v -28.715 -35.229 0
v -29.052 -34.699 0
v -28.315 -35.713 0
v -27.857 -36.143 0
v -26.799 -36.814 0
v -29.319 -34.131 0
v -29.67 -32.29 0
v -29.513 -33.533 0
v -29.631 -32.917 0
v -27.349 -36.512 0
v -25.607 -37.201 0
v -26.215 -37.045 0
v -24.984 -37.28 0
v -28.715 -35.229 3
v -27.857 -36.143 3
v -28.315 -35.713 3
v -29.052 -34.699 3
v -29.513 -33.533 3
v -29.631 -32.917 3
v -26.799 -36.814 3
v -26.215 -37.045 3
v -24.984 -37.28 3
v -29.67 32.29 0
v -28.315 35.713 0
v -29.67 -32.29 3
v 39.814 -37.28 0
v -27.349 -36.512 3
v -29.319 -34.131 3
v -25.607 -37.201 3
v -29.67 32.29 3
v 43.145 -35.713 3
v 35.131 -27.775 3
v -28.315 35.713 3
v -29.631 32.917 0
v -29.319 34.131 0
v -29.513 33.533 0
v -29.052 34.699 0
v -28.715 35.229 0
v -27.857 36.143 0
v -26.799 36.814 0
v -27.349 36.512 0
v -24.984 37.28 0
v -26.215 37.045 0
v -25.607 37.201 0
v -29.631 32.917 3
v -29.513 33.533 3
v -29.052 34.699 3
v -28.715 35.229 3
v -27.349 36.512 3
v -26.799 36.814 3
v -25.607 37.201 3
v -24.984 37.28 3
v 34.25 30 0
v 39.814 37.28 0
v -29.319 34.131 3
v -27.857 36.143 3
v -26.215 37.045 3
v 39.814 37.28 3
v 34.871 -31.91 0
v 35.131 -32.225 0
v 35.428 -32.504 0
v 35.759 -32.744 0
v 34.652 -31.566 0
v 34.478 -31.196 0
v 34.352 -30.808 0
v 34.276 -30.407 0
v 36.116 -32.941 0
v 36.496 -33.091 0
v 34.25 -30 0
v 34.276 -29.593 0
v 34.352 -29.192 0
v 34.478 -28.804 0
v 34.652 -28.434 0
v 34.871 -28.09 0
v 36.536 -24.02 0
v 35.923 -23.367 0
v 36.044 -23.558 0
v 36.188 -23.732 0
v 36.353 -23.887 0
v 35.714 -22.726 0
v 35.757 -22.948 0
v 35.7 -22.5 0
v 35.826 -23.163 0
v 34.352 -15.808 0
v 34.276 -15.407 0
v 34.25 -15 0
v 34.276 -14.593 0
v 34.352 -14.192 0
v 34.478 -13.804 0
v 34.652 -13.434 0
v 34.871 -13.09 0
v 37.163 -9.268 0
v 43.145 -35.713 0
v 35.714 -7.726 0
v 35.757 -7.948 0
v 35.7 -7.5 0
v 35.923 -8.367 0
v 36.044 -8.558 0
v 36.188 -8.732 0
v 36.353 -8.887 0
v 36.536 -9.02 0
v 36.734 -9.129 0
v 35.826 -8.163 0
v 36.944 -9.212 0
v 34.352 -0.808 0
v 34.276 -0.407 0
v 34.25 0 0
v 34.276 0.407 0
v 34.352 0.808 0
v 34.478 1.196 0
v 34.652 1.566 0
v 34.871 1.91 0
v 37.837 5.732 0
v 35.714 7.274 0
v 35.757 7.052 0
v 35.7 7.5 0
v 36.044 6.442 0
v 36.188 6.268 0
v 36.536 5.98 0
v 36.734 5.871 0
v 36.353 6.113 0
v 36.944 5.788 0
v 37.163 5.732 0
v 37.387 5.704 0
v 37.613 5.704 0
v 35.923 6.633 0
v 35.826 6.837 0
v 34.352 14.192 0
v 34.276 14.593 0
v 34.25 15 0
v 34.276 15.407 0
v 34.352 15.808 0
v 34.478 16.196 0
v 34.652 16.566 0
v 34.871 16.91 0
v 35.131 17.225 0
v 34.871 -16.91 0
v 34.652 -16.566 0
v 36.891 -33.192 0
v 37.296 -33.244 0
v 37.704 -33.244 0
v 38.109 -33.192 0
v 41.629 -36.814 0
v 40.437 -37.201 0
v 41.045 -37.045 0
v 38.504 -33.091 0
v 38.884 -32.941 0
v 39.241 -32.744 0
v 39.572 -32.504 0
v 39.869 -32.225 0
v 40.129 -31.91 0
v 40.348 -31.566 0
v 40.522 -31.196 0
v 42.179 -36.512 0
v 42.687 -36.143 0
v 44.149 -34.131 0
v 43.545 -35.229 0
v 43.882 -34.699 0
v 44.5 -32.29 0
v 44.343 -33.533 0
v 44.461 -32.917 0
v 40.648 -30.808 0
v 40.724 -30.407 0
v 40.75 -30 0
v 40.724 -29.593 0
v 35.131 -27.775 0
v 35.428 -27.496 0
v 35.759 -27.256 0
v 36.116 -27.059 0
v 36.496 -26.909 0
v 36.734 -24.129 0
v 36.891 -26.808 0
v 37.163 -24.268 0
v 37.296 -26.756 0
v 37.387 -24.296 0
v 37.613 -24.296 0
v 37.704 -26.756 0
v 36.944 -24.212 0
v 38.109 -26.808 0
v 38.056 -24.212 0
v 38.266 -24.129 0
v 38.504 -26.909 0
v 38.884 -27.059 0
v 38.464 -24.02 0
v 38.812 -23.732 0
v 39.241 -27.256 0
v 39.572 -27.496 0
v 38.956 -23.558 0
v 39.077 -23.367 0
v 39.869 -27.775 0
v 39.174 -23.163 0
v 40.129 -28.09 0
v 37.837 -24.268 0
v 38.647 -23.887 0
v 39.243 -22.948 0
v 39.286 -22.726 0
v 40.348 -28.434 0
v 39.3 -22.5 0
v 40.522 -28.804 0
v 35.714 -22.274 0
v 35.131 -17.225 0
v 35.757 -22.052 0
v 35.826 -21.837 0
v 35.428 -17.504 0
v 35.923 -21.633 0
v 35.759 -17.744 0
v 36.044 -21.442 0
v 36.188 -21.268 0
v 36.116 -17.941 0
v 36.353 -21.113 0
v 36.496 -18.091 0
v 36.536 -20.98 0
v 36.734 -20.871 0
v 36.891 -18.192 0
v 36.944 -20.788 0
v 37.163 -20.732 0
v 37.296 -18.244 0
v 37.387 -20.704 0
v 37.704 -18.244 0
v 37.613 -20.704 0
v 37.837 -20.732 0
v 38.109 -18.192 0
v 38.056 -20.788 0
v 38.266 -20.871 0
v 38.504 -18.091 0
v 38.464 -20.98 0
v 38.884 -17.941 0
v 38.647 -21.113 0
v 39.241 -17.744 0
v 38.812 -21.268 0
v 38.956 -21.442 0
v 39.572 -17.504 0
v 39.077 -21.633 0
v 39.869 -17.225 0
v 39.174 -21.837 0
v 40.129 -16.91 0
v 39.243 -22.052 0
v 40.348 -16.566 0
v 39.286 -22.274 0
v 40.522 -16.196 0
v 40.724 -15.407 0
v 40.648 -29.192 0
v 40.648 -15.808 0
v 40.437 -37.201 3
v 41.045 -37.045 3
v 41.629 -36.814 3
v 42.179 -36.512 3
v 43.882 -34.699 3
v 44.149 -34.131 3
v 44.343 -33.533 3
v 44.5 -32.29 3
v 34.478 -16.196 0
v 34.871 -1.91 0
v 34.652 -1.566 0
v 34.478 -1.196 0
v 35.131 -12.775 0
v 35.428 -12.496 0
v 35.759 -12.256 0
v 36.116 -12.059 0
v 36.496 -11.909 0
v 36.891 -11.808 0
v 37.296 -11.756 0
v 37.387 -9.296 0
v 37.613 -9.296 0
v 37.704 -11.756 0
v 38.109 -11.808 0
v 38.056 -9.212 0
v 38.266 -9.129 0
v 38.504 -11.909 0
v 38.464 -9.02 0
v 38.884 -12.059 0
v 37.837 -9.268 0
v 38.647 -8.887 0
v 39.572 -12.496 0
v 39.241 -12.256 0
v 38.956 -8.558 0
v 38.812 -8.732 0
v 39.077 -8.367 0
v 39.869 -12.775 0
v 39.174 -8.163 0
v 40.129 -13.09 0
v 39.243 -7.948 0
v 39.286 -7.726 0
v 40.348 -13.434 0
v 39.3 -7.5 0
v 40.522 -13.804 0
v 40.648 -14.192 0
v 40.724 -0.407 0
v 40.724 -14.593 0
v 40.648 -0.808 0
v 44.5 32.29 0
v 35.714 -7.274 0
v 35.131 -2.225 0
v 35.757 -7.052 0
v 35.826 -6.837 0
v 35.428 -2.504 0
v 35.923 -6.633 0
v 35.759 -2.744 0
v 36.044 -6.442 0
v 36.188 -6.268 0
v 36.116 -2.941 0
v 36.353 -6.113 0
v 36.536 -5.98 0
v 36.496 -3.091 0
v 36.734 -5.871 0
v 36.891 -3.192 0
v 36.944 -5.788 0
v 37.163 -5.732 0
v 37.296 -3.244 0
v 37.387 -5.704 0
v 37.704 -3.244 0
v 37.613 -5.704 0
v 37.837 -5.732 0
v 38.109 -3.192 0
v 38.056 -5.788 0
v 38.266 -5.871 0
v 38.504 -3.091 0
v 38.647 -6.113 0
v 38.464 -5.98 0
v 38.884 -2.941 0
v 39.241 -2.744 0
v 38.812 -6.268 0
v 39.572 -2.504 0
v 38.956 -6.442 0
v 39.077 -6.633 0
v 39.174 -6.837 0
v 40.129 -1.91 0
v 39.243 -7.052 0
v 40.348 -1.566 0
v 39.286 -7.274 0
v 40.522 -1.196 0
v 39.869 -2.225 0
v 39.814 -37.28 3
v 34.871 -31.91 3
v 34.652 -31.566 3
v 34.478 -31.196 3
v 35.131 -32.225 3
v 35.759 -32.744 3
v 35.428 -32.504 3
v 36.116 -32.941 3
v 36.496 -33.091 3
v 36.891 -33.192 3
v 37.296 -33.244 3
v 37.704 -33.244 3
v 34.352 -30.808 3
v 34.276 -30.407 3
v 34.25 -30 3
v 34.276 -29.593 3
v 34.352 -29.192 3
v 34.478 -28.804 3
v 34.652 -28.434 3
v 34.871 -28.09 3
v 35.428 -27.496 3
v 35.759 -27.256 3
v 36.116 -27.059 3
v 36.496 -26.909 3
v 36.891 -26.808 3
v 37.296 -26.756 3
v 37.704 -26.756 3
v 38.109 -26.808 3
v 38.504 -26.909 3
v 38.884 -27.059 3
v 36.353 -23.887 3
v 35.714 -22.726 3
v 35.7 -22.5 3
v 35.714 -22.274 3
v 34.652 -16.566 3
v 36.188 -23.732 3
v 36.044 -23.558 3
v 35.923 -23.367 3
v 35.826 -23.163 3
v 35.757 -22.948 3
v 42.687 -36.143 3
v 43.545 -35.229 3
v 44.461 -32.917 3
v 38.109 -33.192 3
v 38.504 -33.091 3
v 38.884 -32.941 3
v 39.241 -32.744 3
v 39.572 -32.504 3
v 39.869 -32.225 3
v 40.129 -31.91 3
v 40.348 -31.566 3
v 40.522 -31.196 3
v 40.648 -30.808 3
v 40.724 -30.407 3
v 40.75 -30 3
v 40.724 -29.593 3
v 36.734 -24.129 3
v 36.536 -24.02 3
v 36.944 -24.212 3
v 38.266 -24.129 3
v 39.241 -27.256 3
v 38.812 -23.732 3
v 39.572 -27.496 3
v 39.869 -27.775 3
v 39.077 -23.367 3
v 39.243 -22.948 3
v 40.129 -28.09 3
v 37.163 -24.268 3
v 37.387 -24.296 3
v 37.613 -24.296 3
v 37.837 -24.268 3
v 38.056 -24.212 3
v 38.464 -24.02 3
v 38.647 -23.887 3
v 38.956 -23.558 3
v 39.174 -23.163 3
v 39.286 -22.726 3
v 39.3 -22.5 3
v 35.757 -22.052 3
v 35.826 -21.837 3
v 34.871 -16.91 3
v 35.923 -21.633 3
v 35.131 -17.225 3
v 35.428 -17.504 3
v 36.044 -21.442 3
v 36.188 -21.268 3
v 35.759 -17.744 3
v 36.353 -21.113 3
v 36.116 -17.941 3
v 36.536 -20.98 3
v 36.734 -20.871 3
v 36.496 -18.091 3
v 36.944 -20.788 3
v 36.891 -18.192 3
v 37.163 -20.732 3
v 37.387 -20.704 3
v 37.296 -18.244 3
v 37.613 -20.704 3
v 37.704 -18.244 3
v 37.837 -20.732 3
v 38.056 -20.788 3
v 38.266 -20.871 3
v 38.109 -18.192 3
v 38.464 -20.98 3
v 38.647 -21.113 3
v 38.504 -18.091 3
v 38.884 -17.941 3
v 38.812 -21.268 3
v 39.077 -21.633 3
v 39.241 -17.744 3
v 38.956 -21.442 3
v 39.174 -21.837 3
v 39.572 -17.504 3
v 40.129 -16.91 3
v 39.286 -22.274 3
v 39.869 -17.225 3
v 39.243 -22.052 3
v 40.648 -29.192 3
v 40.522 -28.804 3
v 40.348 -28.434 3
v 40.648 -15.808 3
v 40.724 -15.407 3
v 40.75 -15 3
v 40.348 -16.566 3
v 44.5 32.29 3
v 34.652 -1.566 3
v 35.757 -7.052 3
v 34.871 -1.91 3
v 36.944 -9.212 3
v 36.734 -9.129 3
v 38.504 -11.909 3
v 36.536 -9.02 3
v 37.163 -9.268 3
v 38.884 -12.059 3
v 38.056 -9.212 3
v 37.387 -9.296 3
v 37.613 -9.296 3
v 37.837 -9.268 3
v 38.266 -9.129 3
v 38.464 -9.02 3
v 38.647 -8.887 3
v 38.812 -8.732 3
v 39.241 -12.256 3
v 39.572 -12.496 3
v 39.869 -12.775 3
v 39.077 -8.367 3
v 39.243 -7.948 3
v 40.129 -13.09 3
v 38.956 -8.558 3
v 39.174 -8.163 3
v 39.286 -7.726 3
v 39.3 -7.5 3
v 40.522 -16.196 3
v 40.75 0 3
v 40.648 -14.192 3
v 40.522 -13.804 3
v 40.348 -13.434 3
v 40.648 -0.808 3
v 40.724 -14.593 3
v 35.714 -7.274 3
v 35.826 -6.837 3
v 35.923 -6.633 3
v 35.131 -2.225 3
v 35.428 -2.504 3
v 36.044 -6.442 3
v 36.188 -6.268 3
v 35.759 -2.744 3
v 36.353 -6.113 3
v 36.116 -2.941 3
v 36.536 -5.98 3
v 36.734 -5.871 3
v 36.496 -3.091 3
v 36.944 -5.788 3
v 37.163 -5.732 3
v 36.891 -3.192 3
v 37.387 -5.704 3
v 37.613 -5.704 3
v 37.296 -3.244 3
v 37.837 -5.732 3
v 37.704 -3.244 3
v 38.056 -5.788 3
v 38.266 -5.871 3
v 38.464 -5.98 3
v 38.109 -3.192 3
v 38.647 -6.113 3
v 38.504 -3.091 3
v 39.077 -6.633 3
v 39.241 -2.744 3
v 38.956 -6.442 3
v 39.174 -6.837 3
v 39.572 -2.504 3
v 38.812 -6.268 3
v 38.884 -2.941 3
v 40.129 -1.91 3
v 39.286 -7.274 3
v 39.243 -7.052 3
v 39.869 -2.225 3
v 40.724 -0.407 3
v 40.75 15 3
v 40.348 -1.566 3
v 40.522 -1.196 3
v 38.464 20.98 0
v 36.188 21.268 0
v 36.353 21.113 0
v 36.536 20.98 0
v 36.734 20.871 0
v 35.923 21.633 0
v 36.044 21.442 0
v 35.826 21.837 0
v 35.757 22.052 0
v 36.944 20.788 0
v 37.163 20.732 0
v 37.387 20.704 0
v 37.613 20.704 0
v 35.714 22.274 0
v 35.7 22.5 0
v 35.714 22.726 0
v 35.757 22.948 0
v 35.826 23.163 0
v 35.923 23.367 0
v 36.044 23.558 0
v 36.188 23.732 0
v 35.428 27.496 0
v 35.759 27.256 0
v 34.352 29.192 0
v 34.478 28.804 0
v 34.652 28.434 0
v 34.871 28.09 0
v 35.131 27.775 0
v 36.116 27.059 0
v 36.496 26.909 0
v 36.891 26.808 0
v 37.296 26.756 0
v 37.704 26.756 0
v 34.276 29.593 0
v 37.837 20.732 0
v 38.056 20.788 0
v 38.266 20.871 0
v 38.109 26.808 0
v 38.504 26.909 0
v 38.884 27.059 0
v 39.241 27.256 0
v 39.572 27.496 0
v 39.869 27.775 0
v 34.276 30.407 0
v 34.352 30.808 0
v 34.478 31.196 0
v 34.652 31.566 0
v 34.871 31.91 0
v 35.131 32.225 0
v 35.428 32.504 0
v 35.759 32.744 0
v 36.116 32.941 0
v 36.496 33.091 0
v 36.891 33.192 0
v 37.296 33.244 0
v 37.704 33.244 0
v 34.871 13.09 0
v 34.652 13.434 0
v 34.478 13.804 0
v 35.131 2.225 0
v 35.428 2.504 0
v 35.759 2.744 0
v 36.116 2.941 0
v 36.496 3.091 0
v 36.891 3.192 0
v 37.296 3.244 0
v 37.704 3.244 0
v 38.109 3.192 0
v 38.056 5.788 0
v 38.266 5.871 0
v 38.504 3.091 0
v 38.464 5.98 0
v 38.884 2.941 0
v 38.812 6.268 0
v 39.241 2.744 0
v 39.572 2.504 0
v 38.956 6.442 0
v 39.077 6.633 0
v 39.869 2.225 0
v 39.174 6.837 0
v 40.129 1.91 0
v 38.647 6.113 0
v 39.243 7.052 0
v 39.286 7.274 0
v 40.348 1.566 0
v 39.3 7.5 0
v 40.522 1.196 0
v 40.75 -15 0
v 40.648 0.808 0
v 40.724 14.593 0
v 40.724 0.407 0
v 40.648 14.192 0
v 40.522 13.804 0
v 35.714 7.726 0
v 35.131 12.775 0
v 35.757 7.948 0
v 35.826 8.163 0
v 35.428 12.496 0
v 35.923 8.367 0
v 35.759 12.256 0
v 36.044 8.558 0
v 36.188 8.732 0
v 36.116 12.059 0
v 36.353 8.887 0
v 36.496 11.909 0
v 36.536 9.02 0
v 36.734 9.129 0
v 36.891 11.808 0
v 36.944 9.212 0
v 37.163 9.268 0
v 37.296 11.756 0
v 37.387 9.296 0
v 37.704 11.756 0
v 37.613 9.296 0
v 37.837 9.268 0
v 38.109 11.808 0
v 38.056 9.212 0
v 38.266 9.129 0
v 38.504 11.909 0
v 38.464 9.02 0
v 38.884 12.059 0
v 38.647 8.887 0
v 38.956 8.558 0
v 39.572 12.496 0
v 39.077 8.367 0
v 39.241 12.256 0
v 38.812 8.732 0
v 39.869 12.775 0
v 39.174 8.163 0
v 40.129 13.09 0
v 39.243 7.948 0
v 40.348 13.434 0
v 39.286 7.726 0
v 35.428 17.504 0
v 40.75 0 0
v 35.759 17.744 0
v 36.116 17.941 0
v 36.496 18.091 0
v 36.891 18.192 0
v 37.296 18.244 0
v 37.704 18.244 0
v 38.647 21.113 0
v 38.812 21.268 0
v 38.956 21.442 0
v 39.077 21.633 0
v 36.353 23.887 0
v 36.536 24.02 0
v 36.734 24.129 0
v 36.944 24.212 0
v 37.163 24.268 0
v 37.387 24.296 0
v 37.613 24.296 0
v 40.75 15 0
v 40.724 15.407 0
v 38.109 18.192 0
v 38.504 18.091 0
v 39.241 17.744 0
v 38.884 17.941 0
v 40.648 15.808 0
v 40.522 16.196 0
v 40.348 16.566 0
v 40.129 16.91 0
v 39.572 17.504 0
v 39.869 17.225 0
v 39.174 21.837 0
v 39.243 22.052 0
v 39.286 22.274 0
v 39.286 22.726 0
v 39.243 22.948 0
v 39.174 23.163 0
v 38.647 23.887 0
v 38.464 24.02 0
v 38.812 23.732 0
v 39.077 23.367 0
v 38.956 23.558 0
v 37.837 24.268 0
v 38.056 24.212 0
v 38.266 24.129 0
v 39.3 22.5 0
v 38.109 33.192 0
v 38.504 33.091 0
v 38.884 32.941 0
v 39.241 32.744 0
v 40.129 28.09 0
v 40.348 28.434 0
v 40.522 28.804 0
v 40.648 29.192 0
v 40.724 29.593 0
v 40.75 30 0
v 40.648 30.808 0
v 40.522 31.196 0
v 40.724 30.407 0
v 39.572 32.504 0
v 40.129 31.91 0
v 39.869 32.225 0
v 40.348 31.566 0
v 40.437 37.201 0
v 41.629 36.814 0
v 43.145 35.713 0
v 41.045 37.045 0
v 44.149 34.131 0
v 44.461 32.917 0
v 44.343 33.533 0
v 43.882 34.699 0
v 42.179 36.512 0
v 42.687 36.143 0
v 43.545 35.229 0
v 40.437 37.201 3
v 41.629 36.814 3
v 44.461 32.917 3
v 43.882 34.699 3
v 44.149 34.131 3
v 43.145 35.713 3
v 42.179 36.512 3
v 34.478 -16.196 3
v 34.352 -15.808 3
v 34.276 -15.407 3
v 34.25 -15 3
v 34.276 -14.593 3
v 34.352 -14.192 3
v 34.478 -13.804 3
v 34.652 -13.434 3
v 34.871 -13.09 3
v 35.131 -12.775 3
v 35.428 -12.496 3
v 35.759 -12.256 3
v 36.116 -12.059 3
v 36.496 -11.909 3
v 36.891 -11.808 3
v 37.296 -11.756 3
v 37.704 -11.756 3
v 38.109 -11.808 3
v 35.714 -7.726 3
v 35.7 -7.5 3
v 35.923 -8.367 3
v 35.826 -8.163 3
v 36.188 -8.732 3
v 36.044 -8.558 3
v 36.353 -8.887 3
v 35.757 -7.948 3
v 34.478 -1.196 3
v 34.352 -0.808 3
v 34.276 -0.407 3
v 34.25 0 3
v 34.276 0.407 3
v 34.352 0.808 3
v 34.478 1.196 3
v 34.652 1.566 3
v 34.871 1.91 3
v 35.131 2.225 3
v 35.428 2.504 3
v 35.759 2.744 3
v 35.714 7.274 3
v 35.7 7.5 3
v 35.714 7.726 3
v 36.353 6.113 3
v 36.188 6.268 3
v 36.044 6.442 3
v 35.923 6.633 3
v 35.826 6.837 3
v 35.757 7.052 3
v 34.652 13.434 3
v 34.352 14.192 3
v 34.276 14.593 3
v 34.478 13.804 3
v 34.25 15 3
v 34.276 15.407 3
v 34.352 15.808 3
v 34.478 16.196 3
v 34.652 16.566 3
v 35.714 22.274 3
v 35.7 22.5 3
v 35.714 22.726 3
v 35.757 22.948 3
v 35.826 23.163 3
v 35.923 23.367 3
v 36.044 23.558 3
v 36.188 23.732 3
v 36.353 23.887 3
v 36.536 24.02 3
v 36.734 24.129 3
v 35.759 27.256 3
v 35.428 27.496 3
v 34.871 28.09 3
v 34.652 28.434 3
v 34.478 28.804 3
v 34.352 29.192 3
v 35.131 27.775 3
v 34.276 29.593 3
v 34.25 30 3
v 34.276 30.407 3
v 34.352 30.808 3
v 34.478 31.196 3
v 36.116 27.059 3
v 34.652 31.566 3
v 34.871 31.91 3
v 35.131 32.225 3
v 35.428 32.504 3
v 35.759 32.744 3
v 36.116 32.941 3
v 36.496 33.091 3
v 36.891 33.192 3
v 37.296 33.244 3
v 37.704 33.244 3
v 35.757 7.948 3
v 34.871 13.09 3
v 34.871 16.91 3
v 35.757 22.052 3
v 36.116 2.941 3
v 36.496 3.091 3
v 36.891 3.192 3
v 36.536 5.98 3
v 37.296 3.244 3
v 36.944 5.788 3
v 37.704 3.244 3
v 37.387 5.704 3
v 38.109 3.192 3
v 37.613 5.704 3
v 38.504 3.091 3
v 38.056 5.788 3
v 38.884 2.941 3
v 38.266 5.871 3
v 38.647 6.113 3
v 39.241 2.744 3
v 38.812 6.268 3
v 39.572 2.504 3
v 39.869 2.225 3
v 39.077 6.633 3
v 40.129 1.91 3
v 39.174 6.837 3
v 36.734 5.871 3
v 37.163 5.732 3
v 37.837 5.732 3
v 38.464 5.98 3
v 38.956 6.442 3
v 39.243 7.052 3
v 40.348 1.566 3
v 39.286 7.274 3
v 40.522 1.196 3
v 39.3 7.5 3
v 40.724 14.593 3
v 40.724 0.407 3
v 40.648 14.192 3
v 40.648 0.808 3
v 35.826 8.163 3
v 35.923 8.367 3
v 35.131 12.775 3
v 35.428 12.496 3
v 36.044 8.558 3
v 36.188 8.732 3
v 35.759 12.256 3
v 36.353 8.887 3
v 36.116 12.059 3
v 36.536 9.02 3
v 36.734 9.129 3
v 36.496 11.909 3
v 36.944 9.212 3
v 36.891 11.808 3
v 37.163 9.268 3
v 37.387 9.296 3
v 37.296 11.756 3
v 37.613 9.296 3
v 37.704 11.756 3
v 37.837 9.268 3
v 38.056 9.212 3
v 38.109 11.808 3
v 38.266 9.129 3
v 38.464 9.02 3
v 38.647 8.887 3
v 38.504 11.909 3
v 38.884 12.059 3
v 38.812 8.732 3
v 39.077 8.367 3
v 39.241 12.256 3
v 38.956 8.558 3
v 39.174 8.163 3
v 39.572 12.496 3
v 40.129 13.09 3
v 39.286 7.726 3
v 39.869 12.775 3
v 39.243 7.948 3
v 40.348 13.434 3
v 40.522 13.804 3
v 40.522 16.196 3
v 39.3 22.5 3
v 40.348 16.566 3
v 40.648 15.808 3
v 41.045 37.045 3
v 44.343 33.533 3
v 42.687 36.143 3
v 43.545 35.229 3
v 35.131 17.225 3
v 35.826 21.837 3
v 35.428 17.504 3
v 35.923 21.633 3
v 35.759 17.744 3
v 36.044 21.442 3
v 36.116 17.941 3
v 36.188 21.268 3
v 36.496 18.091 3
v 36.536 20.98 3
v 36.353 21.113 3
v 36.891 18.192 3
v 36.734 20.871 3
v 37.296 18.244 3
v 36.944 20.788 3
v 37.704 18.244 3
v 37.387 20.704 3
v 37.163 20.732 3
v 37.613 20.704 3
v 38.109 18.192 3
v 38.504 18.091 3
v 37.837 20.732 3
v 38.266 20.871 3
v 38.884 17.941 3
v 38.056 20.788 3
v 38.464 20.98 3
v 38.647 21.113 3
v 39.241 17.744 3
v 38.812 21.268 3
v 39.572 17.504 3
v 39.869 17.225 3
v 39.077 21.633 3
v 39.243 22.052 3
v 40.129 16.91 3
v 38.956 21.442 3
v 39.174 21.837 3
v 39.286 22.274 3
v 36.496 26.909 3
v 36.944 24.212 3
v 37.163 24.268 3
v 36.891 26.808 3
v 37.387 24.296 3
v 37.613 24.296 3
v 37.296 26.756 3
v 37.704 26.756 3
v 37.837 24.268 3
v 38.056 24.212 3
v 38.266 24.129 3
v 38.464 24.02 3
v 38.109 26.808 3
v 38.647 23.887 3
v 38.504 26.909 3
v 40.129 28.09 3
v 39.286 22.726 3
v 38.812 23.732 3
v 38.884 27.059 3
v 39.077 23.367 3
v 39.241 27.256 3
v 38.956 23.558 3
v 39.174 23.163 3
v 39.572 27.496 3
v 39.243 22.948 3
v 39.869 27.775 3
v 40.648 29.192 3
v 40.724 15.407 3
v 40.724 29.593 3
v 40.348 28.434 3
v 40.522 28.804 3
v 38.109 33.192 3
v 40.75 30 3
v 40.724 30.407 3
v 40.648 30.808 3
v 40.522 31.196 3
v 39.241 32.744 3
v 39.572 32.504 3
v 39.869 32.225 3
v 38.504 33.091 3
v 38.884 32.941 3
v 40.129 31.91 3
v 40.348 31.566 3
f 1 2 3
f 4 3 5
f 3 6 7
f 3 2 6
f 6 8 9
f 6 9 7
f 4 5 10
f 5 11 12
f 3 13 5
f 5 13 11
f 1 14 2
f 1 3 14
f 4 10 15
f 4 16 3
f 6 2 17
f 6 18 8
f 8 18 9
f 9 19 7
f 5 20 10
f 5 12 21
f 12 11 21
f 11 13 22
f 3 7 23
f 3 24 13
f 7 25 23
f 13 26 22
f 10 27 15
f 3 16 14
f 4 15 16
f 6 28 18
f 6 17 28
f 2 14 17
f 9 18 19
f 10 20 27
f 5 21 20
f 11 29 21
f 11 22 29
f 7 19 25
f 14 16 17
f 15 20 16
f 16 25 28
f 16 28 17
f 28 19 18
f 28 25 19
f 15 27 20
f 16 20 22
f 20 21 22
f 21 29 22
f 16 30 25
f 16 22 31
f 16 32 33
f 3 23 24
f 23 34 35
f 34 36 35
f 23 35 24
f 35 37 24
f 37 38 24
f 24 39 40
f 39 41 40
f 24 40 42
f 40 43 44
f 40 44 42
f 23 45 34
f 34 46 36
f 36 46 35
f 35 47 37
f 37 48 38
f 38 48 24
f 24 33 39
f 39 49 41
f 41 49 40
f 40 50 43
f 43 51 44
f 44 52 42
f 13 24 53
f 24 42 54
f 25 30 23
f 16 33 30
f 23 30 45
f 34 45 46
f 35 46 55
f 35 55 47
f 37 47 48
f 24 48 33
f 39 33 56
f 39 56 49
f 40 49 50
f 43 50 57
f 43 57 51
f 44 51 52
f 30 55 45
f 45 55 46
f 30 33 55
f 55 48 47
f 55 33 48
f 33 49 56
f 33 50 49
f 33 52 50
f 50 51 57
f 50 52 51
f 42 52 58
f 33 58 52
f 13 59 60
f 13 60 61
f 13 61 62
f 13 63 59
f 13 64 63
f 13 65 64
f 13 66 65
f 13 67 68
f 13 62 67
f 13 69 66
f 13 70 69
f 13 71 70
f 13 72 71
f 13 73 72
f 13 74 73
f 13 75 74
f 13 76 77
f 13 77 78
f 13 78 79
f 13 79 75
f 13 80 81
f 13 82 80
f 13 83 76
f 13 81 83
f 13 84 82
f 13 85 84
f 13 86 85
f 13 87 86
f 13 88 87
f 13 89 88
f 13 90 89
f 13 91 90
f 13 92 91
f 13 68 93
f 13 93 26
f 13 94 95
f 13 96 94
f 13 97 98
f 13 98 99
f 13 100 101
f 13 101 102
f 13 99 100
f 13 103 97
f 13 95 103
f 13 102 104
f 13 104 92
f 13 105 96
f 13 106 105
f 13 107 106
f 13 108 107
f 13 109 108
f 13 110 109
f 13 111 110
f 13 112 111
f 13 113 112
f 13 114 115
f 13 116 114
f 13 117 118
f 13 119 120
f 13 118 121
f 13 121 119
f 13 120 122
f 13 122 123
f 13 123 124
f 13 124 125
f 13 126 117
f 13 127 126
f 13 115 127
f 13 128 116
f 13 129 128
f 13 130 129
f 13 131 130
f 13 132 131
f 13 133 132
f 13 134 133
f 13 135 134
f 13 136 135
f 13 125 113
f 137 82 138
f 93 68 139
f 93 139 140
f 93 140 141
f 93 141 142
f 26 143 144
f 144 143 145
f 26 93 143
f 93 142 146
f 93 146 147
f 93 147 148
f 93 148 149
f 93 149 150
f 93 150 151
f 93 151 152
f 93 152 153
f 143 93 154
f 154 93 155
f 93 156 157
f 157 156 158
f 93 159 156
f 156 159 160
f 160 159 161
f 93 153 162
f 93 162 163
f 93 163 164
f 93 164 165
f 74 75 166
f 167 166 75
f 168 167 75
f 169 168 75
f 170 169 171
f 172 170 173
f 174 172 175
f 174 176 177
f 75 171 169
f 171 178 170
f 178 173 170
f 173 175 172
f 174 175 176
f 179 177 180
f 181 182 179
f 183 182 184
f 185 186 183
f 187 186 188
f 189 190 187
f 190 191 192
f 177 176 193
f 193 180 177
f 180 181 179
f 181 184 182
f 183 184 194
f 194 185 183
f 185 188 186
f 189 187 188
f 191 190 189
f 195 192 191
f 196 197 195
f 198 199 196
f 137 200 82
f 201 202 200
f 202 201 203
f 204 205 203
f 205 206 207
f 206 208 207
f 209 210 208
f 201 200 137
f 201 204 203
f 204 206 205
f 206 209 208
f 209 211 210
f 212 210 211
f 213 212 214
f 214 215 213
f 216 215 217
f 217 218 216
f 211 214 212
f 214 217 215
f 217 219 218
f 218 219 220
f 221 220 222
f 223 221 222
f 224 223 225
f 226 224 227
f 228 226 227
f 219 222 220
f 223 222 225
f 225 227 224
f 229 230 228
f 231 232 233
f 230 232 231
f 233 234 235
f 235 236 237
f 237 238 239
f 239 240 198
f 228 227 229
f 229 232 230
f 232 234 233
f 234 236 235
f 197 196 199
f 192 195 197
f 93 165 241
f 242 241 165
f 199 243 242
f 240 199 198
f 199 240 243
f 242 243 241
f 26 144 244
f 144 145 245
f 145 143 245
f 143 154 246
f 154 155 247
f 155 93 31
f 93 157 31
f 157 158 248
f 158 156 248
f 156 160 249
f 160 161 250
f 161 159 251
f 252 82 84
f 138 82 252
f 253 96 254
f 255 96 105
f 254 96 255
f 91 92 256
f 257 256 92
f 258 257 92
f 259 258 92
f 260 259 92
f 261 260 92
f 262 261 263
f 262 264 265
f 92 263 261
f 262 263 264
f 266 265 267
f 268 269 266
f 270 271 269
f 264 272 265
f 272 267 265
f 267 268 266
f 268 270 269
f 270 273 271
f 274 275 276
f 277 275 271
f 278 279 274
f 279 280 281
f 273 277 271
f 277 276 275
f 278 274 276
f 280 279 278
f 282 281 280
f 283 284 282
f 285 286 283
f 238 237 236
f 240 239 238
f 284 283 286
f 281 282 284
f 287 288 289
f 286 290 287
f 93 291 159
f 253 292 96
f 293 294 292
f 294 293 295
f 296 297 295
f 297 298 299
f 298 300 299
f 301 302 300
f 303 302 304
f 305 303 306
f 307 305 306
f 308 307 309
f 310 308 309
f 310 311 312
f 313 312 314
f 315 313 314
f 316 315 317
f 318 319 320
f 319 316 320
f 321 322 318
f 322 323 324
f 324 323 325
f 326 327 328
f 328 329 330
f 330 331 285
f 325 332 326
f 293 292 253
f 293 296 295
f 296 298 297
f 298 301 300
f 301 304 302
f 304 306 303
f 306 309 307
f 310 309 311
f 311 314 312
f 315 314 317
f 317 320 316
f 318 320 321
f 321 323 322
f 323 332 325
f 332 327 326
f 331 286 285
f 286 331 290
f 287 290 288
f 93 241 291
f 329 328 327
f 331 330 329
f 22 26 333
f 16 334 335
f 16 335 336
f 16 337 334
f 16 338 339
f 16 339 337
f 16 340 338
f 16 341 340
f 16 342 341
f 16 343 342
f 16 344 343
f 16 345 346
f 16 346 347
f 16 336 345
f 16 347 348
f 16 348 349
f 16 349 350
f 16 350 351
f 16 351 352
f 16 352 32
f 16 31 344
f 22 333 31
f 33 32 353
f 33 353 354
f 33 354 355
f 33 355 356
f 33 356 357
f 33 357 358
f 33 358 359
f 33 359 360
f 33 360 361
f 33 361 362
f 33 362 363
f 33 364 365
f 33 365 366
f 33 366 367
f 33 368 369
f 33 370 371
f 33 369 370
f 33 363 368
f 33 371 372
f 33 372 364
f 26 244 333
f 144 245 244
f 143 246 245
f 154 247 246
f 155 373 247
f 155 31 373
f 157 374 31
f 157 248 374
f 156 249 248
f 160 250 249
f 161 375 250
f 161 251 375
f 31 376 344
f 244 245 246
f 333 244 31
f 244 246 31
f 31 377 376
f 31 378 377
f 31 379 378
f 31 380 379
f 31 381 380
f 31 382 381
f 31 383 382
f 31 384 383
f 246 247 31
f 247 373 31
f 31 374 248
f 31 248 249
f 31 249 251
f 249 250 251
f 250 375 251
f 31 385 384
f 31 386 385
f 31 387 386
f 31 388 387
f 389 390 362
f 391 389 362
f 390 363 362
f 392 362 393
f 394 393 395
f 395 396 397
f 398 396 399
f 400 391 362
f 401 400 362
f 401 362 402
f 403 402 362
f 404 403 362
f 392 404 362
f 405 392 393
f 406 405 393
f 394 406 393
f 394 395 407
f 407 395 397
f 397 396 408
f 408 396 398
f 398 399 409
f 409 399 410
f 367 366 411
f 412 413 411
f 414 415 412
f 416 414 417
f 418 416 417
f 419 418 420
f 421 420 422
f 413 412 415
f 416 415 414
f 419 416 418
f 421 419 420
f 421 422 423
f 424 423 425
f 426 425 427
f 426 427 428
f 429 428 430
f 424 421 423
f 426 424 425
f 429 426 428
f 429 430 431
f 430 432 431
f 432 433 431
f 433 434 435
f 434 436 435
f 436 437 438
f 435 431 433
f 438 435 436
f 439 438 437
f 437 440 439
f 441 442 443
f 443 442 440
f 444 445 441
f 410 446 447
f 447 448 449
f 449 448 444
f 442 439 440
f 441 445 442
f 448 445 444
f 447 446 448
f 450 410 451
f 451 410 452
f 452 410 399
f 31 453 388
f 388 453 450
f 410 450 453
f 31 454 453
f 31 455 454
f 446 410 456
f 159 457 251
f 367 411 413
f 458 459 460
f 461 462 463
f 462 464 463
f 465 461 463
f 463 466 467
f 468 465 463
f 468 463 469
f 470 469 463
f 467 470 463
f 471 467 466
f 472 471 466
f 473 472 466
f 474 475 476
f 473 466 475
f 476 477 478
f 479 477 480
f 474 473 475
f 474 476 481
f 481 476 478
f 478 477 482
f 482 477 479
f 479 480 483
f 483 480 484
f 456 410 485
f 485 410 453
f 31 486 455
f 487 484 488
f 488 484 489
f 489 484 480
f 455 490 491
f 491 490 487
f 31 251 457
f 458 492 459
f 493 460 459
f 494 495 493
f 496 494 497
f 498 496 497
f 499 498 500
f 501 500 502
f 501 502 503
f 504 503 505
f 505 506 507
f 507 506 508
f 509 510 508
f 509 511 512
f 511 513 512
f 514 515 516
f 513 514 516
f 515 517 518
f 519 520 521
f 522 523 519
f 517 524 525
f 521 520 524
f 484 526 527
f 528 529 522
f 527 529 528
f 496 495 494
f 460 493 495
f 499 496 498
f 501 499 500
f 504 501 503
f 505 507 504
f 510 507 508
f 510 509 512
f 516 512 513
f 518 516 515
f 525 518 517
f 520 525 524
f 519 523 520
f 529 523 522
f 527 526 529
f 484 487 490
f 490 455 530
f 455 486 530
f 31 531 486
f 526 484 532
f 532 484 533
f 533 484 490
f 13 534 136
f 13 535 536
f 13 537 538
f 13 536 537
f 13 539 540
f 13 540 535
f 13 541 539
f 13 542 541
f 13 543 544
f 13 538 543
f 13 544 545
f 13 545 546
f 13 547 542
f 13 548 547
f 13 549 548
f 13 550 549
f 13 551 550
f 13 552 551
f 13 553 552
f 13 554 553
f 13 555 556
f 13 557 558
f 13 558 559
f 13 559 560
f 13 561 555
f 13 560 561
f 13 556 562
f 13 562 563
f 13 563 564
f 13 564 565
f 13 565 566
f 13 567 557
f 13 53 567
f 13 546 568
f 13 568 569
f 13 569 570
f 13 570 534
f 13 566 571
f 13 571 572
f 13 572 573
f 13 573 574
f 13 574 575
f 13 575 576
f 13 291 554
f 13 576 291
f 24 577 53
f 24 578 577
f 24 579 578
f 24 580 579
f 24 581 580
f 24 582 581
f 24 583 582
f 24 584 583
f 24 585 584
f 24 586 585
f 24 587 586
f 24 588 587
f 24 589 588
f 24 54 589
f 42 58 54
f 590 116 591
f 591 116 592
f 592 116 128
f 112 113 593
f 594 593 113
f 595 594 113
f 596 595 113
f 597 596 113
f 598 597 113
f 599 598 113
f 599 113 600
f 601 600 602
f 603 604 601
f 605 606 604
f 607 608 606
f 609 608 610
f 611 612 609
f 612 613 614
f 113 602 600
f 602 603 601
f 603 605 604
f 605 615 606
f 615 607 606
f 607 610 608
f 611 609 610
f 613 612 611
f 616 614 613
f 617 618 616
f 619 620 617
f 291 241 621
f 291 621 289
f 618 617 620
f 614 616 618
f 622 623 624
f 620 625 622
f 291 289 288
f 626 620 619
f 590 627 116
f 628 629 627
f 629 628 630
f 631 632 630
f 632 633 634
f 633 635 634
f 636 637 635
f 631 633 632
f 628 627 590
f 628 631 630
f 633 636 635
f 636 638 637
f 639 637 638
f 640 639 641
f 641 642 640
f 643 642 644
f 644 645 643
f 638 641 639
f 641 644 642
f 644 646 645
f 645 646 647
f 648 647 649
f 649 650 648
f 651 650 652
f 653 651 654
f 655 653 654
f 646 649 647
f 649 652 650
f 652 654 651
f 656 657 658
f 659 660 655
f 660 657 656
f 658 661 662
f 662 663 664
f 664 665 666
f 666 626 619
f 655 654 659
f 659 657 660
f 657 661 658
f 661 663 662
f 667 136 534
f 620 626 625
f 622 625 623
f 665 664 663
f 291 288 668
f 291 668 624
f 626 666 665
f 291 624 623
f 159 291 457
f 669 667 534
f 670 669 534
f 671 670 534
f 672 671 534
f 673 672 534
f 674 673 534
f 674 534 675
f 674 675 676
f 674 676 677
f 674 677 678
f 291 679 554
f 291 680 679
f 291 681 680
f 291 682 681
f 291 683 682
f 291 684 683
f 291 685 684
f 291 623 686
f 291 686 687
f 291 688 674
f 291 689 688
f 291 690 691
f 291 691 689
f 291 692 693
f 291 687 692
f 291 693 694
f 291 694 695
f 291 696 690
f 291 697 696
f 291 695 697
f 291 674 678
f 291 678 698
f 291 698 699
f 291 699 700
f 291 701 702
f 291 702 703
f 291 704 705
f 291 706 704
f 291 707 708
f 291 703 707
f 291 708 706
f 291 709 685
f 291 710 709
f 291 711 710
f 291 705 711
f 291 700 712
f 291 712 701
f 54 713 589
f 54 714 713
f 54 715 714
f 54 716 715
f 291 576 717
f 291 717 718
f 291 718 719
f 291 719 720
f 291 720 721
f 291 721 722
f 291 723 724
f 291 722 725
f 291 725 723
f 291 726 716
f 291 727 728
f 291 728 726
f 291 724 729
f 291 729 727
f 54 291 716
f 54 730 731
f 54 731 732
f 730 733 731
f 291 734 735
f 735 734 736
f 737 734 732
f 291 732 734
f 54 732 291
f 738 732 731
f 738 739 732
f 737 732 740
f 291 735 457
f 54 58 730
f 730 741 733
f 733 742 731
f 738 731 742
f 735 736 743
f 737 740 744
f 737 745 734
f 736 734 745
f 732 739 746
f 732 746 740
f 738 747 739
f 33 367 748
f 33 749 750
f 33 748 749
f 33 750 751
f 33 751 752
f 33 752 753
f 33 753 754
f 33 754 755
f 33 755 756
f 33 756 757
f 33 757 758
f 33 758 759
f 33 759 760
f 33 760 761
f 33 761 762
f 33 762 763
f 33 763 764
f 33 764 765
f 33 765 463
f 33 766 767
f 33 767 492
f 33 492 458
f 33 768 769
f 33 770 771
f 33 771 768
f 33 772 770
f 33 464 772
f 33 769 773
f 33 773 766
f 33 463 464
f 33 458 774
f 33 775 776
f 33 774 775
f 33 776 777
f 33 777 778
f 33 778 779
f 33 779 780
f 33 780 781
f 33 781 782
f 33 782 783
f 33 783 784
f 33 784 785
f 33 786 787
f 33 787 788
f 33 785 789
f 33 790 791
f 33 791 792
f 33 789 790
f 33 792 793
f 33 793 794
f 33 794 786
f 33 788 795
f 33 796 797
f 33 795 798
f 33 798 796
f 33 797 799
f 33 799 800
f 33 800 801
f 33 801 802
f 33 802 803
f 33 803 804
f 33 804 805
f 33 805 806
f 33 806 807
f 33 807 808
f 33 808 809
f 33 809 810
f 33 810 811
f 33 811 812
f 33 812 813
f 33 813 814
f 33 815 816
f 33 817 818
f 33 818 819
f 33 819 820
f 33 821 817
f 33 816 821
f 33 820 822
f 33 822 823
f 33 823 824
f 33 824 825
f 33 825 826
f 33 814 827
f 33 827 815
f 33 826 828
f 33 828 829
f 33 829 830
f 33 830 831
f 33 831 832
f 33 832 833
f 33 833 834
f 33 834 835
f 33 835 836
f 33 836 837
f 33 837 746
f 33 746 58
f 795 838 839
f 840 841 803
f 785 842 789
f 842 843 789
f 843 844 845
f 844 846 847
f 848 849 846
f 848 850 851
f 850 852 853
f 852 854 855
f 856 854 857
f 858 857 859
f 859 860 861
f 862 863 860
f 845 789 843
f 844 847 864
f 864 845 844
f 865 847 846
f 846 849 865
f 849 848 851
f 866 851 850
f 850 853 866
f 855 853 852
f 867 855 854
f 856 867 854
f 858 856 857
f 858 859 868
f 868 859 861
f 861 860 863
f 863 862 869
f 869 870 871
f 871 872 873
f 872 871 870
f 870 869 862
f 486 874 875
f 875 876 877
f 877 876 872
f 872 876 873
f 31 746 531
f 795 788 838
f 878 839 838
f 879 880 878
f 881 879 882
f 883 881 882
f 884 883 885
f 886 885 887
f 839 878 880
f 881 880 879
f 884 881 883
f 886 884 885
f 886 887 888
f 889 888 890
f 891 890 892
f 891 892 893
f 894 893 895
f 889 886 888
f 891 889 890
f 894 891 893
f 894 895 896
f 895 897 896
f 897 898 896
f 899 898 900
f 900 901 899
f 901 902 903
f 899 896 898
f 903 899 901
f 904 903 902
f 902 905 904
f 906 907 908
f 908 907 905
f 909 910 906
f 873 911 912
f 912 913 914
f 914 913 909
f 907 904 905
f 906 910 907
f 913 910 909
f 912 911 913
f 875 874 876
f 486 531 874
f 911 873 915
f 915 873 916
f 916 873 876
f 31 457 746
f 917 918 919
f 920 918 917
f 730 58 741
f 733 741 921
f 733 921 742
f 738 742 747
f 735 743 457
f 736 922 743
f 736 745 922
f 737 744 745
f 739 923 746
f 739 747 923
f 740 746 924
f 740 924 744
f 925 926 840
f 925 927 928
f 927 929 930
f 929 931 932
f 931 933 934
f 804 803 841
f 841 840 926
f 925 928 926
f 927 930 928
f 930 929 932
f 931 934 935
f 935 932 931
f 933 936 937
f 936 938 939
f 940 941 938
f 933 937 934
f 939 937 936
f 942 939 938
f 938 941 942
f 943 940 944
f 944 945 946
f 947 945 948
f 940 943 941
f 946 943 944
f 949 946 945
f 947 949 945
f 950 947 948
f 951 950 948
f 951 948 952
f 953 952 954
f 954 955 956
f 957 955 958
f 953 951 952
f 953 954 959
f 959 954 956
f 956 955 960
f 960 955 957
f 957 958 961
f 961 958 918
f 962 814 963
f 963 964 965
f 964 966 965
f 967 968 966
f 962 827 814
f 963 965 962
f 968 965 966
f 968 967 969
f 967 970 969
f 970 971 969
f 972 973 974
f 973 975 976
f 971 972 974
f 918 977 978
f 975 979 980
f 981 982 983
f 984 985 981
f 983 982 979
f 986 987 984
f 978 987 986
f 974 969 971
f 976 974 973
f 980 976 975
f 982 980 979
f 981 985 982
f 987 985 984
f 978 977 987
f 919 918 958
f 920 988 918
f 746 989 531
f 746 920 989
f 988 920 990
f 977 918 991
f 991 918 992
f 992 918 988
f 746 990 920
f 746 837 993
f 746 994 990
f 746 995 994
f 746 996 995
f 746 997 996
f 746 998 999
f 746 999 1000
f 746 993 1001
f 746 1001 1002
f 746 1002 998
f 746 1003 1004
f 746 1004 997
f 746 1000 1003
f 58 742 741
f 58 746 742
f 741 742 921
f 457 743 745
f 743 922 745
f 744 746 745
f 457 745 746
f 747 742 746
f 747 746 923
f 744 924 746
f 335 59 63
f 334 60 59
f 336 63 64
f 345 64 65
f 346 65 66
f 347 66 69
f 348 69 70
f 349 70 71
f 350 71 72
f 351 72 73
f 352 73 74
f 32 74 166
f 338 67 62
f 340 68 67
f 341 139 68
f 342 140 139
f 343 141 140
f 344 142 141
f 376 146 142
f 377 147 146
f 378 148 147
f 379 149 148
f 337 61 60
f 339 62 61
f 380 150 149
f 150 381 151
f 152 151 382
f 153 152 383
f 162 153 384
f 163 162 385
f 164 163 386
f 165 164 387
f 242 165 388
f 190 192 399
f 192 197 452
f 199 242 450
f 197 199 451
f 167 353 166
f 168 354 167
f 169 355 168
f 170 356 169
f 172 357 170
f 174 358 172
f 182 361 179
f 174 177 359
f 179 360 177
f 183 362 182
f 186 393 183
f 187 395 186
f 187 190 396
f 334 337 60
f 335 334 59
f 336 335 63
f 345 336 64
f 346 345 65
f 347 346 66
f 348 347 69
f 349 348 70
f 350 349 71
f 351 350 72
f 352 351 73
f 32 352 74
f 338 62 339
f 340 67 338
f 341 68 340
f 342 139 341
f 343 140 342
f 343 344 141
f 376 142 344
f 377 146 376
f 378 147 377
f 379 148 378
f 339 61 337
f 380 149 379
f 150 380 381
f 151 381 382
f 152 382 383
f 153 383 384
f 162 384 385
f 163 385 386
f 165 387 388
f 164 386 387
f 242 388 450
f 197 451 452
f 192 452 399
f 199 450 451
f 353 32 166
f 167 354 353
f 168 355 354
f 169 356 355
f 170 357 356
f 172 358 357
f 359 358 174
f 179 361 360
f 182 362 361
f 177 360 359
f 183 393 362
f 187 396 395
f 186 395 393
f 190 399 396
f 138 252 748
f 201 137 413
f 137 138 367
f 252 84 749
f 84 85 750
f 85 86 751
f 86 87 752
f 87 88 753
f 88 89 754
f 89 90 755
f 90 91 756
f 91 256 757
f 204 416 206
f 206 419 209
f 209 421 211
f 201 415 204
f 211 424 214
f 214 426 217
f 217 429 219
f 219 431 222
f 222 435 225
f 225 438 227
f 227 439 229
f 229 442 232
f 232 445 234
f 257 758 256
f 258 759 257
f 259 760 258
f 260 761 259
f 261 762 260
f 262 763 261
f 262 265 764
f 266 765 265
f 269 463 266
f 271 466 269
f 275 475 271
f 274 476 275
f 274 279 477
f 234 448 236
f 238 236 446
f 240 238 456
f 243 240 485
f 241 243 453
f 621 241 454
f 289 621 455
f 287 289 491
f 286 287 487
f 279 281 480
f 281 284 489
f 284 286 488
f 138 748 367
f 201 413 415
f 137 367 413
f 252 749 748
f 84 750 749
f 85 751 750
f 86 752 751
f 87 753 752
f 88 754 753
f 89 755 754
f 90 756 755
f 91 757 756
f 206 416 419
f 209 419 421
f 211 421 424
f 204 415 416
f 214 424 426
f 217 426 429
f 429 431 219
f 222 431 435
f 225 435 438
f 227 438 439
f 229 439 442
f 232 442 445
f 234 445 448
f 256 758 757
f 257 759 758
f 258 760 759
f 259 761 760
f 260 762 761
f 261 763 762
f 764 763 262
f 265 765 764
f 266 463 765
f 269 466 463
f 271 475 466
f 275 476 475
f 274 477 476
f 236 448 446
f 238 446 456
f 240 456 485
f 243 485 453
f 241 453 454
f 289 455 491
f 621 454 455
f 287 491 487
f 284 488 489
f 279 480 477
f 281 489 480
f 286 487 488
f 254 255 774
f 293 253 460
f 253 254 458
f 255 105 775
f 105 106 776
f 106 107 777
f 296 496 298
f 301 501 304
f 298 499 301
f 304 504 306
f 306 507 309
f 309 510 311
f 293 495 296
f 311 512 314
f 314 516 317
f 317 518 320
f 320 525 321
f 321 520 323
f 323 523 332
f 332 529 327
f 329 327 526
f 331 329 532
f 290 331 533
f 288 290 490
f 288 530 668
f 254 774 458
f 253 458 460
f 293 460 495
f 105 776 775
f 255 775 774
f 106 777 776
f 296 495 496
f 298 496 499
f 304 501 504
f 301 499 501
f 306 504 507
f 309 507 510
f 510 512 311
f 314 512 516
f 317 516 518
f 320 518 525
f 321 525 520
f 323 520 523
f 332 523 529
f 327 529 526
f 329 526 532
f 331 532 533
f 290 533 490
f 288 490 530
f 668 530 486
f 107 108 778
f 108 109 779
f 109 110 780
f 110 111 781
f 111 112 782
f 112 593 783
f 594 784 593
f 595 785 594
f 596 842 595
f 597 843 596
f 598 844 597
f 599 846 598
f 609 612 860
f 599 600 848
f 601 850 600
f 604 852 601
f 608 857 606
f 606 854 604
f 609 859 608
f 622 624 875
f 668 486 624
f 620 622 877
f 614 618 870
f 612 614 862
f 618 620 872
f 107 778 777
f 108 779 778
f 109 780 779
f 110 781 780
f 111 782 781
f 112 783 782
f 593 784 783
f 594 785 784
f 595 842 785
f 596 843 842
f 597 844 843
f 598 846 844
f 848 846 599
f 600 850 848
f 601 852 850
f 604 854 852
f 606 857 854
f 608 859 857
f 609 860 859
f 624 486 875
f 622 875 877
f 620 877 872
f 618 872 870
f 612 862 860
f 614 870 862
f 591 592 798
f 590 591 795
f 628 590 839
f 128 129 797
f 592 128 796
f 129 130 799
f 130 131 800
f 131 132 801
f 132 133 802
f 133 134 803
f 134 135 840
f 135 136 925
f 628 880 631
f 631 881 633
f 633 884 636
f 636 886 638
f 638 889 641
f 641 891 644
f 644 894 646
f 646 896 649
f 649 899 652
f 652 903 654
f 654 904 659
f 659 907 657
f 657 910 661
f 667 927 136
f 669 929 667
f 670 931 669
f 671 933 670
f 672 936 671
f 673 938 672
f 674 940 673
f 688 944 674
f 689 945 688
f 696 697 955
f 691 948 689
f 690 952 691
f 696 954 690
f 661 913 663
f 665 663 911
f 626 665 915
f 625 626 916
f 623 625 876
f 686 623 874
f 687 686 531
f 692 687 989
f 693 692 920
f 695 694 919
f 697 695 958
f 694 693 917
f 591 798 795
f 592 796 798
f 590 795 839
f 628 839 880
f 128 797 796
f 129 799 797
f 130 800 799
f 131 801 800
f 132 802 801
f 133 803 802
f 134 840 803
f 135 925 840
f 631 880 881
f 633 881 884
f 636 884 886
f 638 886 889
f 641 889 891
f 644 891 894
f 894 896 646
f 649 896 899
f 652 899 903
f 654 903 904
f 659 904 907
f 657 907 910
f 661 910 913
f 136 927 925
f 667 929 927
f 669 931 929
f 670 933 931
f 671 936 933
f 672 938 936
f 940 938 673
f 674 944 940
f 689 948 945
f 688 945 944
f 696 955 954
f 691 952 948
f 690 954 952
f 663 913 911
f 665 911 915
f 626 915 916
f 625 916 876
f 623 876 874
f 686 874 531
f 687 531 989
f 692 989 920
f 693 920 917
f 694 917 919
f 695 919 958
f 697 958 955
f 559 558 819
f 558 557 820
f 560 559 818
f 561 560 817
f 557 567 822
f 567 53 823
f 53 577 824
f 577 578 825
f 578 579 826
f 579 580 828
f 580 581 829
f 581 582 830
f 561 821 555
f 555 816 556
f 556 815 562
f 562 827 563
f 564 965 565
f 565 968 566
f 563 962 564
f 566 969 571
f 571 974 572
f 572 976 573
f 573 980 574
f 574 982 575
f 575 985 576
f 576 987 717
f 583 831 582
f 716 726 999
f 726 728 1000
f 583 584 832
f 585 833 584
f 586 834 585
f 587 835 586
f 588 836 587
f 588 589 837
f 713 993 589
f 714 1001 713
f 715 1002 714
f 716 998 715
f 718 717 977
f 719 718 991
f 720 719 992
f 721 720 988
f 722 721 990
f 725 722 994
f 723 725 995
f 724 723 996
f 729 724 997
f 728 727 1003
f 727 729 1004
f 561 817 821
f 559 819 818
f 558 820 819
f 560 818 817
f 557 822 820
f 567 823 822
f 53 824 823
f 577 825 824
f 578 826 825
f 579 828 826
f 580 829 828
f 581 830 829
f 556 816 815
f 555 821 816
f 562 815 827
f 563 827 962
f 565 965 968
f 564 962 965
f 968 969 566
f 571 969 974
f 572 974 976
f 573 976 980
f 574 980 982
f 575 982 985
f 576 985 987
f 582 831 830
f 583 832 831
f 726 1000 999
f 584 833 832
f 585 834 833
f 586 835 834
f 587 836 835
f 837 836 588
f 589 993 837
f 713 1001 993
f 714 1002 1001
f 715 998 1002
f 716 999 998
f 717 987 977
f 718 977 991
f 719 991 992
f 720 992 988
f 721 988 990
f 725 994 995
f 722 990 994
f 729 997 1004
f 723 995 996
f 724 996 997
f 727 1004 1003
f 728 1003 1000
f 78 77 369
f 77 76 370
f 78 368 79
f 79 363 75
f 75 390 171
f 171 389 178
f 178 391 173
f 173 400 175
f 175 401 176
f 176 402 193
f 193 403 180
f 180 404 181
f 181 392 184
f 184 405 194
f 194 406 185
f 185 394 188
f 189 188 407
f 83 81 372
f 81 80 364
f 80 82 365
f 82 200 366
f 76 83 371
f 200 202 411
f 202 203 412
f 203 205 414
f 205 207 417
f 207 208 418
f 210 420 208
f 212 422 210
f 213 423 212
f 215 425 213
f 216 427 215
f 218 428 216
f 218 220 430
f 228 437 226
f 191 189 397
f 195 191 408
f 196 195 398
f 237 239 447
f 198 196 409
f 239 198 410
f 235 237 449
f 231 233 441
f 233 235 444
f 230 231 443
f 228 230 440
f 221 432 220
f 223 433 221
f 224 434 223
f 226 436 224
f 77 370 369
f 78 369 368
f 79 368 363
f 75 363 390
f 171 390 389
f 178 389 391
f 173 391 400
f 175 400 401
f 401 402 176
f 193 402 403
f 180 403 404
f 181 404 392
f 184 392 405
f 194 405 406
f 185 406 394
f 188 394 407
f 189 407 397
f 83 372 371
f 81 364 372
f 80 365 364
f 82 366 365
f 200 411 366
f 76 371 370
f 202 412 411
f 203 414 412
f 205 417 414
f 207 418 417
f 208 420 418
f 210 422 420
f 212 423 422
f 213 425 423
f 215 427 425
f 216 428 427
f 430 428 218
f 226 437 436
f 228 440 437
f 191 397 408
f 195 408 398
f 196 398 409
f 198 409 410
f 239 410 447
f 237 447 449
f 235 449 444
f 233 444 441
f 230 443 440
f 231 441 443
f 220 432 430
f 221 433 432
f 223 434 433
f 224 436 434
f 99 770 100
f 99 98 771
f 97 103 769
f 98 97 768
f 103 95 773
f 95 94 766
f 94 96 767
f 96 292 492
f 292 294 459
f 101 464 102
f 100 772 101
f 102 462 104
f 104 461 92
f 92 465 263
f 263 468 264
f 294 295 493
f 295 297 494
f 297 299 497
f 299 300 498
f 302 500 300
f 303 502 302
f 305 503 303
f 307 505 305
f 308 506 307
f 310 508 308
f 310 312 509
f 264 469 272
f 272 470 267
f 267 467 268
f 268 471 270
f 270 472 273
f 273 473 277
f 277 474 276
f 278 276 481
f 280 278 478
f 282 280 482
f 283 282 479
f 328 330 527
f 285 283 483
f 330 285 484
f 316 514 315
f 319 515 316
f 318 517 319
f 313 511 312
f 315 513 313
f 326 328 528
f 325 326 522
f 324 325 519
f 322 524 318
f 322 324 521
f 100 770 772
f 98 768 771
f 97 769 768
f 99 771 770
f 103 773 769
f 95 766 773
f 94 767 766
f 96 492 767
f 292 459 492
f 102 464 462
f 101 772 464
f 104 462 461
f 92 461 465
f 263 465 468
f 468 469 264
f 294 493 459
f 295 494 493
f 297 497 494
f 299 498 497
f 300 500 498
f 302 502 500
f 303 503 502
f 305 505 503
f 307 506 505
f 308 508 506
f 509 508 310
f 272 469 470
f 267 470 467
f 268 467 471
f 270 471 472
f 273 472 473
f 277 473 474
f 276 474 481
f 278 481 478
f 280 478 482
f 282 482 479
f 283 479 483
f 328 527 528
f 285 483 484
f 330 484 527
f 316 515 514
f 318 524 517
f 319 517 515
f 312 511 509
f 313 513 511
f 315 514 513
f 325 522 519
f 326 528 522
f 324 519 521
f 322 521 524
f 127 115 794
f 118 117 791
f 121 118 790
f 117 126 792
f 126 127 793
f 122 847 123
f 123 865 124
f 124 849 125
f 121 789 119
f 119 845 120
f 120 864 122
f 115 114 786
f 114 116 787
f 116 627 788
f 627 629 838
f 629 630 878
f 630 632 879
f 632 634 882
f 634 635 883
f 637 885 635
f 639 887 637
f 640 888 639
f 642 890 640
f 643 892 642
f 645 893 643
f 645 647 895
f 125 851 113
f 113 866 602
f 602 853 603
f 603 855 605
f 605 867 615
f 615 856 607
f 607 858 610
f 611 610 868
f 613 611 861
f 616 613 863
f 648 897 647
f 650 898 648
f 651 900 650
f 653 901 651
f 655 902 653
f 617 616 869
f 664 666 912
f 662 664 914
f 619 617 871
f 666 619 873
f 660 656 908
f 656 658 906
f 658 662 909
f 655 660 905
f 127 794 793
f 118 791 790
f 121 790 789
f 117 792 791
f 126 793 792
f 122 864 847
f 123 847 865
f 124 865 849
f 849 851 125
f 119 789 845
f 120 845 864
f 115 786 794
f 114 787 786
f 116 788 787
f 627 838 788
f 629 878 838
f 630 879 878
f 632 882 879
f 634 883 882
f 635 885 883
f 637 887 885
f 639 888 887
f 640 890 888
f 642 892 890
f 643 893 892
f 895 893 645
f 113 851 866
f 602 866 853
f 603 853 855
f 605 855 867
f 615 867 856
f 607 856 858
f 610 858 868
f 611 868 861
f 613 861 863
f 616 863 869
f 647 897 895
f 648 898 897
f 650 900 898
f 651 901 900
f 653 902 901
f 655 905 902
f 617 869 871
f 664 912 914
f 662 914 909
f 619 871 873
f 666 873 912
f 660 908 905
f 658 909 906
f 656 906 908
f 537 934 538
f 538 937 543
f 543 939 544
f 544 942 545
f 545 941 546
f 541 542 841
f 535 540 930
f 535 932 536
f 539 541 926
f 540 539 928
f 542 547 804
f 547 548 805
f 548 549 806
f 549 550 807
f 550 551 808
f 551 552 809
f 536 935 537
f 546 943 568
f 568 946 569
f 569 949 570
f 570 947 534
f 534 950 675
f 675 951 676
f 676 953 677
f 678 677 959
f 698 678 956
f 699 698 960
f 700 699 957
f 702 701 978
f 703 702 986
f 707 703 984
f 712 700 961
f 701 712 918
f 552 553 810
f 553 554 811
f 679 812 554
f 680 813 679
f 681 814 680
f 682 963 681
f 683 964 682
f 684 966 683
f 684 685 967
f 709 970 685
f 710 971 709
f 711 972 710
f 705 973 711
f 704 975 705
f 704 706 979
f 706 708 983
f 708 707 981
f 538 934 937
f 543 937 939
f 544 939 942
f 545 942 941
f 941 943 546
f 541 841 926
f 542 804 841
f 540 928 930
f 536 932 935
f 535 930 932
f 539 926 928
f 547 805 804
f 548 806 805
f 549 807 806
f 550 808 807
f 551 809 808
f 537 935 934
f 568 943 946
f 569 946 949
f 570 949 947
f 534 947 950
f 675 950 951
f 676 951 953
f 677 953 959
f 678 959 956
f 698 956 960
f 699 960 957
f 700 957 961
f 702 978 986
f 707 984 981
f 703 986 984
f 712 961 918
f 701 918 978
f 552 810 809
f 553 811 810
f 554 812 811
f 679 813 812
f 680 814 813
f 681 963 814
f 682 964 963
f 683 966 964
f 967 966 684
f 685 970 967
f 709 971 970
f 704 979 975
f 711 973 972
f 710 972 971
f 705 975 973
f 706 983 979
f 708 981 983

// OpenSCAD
$fn = 50;

difference() {
	union() {
		translate(v = [7.414999999999999, 0.0, 0]) {
			hull() {
				translate(v = [-32.085, 32.29, 0]) {
					cylinder(h = 3, r = 5);
				}
				translate(v = [32.085, 32.29, 0]) {
					cylinder(h = 3, r = 5);
				}
				translate(v = [-32.085, -32.29, 0]) {
					cylinder(h = 3, r = 5);
				}
				translate(v = [32.085, -32.29, 0]) {
					cylinder(h = 3, r = 5);
				}
			}
		}
	}
	union() {
		translate(v = [37.5, -30.0, -1]) {
			cylinder(h = 5, r = 3.25);
		}
		translate(v = [37.5, -15.0, -1]) {
			cylinder(h = 5, r = 3.25);
		}
		translate(v = [37.5, 0.0, -1]) {
			cylinder(h = 5, r = 3.25);
		}
		translate(v = [37.5, 15.0, -1]) {
			cylinder(h = 5, r = 3.25);
		}
		translate(v = [37.5, 30.0, -1]) {
			cylinder(h = 5, r = 3.25);
		}
		translate(v = [37.5, -22.5, -1]) {
			cylinder(h = 5, r = 1.8);
		}
		translate(v = [37.5, -7.5, -1]) {
			cylinder(h = 5, r = 1.8);
		}
		translate(v = [37.5, 7.5, -1]) {
			cylinder(h = 5, r = 1.8);
		}
		translate(v = [37.5, 22.5, -1]) {
			cylinder(h = 5, r = 1.8);
		}
	}
}
